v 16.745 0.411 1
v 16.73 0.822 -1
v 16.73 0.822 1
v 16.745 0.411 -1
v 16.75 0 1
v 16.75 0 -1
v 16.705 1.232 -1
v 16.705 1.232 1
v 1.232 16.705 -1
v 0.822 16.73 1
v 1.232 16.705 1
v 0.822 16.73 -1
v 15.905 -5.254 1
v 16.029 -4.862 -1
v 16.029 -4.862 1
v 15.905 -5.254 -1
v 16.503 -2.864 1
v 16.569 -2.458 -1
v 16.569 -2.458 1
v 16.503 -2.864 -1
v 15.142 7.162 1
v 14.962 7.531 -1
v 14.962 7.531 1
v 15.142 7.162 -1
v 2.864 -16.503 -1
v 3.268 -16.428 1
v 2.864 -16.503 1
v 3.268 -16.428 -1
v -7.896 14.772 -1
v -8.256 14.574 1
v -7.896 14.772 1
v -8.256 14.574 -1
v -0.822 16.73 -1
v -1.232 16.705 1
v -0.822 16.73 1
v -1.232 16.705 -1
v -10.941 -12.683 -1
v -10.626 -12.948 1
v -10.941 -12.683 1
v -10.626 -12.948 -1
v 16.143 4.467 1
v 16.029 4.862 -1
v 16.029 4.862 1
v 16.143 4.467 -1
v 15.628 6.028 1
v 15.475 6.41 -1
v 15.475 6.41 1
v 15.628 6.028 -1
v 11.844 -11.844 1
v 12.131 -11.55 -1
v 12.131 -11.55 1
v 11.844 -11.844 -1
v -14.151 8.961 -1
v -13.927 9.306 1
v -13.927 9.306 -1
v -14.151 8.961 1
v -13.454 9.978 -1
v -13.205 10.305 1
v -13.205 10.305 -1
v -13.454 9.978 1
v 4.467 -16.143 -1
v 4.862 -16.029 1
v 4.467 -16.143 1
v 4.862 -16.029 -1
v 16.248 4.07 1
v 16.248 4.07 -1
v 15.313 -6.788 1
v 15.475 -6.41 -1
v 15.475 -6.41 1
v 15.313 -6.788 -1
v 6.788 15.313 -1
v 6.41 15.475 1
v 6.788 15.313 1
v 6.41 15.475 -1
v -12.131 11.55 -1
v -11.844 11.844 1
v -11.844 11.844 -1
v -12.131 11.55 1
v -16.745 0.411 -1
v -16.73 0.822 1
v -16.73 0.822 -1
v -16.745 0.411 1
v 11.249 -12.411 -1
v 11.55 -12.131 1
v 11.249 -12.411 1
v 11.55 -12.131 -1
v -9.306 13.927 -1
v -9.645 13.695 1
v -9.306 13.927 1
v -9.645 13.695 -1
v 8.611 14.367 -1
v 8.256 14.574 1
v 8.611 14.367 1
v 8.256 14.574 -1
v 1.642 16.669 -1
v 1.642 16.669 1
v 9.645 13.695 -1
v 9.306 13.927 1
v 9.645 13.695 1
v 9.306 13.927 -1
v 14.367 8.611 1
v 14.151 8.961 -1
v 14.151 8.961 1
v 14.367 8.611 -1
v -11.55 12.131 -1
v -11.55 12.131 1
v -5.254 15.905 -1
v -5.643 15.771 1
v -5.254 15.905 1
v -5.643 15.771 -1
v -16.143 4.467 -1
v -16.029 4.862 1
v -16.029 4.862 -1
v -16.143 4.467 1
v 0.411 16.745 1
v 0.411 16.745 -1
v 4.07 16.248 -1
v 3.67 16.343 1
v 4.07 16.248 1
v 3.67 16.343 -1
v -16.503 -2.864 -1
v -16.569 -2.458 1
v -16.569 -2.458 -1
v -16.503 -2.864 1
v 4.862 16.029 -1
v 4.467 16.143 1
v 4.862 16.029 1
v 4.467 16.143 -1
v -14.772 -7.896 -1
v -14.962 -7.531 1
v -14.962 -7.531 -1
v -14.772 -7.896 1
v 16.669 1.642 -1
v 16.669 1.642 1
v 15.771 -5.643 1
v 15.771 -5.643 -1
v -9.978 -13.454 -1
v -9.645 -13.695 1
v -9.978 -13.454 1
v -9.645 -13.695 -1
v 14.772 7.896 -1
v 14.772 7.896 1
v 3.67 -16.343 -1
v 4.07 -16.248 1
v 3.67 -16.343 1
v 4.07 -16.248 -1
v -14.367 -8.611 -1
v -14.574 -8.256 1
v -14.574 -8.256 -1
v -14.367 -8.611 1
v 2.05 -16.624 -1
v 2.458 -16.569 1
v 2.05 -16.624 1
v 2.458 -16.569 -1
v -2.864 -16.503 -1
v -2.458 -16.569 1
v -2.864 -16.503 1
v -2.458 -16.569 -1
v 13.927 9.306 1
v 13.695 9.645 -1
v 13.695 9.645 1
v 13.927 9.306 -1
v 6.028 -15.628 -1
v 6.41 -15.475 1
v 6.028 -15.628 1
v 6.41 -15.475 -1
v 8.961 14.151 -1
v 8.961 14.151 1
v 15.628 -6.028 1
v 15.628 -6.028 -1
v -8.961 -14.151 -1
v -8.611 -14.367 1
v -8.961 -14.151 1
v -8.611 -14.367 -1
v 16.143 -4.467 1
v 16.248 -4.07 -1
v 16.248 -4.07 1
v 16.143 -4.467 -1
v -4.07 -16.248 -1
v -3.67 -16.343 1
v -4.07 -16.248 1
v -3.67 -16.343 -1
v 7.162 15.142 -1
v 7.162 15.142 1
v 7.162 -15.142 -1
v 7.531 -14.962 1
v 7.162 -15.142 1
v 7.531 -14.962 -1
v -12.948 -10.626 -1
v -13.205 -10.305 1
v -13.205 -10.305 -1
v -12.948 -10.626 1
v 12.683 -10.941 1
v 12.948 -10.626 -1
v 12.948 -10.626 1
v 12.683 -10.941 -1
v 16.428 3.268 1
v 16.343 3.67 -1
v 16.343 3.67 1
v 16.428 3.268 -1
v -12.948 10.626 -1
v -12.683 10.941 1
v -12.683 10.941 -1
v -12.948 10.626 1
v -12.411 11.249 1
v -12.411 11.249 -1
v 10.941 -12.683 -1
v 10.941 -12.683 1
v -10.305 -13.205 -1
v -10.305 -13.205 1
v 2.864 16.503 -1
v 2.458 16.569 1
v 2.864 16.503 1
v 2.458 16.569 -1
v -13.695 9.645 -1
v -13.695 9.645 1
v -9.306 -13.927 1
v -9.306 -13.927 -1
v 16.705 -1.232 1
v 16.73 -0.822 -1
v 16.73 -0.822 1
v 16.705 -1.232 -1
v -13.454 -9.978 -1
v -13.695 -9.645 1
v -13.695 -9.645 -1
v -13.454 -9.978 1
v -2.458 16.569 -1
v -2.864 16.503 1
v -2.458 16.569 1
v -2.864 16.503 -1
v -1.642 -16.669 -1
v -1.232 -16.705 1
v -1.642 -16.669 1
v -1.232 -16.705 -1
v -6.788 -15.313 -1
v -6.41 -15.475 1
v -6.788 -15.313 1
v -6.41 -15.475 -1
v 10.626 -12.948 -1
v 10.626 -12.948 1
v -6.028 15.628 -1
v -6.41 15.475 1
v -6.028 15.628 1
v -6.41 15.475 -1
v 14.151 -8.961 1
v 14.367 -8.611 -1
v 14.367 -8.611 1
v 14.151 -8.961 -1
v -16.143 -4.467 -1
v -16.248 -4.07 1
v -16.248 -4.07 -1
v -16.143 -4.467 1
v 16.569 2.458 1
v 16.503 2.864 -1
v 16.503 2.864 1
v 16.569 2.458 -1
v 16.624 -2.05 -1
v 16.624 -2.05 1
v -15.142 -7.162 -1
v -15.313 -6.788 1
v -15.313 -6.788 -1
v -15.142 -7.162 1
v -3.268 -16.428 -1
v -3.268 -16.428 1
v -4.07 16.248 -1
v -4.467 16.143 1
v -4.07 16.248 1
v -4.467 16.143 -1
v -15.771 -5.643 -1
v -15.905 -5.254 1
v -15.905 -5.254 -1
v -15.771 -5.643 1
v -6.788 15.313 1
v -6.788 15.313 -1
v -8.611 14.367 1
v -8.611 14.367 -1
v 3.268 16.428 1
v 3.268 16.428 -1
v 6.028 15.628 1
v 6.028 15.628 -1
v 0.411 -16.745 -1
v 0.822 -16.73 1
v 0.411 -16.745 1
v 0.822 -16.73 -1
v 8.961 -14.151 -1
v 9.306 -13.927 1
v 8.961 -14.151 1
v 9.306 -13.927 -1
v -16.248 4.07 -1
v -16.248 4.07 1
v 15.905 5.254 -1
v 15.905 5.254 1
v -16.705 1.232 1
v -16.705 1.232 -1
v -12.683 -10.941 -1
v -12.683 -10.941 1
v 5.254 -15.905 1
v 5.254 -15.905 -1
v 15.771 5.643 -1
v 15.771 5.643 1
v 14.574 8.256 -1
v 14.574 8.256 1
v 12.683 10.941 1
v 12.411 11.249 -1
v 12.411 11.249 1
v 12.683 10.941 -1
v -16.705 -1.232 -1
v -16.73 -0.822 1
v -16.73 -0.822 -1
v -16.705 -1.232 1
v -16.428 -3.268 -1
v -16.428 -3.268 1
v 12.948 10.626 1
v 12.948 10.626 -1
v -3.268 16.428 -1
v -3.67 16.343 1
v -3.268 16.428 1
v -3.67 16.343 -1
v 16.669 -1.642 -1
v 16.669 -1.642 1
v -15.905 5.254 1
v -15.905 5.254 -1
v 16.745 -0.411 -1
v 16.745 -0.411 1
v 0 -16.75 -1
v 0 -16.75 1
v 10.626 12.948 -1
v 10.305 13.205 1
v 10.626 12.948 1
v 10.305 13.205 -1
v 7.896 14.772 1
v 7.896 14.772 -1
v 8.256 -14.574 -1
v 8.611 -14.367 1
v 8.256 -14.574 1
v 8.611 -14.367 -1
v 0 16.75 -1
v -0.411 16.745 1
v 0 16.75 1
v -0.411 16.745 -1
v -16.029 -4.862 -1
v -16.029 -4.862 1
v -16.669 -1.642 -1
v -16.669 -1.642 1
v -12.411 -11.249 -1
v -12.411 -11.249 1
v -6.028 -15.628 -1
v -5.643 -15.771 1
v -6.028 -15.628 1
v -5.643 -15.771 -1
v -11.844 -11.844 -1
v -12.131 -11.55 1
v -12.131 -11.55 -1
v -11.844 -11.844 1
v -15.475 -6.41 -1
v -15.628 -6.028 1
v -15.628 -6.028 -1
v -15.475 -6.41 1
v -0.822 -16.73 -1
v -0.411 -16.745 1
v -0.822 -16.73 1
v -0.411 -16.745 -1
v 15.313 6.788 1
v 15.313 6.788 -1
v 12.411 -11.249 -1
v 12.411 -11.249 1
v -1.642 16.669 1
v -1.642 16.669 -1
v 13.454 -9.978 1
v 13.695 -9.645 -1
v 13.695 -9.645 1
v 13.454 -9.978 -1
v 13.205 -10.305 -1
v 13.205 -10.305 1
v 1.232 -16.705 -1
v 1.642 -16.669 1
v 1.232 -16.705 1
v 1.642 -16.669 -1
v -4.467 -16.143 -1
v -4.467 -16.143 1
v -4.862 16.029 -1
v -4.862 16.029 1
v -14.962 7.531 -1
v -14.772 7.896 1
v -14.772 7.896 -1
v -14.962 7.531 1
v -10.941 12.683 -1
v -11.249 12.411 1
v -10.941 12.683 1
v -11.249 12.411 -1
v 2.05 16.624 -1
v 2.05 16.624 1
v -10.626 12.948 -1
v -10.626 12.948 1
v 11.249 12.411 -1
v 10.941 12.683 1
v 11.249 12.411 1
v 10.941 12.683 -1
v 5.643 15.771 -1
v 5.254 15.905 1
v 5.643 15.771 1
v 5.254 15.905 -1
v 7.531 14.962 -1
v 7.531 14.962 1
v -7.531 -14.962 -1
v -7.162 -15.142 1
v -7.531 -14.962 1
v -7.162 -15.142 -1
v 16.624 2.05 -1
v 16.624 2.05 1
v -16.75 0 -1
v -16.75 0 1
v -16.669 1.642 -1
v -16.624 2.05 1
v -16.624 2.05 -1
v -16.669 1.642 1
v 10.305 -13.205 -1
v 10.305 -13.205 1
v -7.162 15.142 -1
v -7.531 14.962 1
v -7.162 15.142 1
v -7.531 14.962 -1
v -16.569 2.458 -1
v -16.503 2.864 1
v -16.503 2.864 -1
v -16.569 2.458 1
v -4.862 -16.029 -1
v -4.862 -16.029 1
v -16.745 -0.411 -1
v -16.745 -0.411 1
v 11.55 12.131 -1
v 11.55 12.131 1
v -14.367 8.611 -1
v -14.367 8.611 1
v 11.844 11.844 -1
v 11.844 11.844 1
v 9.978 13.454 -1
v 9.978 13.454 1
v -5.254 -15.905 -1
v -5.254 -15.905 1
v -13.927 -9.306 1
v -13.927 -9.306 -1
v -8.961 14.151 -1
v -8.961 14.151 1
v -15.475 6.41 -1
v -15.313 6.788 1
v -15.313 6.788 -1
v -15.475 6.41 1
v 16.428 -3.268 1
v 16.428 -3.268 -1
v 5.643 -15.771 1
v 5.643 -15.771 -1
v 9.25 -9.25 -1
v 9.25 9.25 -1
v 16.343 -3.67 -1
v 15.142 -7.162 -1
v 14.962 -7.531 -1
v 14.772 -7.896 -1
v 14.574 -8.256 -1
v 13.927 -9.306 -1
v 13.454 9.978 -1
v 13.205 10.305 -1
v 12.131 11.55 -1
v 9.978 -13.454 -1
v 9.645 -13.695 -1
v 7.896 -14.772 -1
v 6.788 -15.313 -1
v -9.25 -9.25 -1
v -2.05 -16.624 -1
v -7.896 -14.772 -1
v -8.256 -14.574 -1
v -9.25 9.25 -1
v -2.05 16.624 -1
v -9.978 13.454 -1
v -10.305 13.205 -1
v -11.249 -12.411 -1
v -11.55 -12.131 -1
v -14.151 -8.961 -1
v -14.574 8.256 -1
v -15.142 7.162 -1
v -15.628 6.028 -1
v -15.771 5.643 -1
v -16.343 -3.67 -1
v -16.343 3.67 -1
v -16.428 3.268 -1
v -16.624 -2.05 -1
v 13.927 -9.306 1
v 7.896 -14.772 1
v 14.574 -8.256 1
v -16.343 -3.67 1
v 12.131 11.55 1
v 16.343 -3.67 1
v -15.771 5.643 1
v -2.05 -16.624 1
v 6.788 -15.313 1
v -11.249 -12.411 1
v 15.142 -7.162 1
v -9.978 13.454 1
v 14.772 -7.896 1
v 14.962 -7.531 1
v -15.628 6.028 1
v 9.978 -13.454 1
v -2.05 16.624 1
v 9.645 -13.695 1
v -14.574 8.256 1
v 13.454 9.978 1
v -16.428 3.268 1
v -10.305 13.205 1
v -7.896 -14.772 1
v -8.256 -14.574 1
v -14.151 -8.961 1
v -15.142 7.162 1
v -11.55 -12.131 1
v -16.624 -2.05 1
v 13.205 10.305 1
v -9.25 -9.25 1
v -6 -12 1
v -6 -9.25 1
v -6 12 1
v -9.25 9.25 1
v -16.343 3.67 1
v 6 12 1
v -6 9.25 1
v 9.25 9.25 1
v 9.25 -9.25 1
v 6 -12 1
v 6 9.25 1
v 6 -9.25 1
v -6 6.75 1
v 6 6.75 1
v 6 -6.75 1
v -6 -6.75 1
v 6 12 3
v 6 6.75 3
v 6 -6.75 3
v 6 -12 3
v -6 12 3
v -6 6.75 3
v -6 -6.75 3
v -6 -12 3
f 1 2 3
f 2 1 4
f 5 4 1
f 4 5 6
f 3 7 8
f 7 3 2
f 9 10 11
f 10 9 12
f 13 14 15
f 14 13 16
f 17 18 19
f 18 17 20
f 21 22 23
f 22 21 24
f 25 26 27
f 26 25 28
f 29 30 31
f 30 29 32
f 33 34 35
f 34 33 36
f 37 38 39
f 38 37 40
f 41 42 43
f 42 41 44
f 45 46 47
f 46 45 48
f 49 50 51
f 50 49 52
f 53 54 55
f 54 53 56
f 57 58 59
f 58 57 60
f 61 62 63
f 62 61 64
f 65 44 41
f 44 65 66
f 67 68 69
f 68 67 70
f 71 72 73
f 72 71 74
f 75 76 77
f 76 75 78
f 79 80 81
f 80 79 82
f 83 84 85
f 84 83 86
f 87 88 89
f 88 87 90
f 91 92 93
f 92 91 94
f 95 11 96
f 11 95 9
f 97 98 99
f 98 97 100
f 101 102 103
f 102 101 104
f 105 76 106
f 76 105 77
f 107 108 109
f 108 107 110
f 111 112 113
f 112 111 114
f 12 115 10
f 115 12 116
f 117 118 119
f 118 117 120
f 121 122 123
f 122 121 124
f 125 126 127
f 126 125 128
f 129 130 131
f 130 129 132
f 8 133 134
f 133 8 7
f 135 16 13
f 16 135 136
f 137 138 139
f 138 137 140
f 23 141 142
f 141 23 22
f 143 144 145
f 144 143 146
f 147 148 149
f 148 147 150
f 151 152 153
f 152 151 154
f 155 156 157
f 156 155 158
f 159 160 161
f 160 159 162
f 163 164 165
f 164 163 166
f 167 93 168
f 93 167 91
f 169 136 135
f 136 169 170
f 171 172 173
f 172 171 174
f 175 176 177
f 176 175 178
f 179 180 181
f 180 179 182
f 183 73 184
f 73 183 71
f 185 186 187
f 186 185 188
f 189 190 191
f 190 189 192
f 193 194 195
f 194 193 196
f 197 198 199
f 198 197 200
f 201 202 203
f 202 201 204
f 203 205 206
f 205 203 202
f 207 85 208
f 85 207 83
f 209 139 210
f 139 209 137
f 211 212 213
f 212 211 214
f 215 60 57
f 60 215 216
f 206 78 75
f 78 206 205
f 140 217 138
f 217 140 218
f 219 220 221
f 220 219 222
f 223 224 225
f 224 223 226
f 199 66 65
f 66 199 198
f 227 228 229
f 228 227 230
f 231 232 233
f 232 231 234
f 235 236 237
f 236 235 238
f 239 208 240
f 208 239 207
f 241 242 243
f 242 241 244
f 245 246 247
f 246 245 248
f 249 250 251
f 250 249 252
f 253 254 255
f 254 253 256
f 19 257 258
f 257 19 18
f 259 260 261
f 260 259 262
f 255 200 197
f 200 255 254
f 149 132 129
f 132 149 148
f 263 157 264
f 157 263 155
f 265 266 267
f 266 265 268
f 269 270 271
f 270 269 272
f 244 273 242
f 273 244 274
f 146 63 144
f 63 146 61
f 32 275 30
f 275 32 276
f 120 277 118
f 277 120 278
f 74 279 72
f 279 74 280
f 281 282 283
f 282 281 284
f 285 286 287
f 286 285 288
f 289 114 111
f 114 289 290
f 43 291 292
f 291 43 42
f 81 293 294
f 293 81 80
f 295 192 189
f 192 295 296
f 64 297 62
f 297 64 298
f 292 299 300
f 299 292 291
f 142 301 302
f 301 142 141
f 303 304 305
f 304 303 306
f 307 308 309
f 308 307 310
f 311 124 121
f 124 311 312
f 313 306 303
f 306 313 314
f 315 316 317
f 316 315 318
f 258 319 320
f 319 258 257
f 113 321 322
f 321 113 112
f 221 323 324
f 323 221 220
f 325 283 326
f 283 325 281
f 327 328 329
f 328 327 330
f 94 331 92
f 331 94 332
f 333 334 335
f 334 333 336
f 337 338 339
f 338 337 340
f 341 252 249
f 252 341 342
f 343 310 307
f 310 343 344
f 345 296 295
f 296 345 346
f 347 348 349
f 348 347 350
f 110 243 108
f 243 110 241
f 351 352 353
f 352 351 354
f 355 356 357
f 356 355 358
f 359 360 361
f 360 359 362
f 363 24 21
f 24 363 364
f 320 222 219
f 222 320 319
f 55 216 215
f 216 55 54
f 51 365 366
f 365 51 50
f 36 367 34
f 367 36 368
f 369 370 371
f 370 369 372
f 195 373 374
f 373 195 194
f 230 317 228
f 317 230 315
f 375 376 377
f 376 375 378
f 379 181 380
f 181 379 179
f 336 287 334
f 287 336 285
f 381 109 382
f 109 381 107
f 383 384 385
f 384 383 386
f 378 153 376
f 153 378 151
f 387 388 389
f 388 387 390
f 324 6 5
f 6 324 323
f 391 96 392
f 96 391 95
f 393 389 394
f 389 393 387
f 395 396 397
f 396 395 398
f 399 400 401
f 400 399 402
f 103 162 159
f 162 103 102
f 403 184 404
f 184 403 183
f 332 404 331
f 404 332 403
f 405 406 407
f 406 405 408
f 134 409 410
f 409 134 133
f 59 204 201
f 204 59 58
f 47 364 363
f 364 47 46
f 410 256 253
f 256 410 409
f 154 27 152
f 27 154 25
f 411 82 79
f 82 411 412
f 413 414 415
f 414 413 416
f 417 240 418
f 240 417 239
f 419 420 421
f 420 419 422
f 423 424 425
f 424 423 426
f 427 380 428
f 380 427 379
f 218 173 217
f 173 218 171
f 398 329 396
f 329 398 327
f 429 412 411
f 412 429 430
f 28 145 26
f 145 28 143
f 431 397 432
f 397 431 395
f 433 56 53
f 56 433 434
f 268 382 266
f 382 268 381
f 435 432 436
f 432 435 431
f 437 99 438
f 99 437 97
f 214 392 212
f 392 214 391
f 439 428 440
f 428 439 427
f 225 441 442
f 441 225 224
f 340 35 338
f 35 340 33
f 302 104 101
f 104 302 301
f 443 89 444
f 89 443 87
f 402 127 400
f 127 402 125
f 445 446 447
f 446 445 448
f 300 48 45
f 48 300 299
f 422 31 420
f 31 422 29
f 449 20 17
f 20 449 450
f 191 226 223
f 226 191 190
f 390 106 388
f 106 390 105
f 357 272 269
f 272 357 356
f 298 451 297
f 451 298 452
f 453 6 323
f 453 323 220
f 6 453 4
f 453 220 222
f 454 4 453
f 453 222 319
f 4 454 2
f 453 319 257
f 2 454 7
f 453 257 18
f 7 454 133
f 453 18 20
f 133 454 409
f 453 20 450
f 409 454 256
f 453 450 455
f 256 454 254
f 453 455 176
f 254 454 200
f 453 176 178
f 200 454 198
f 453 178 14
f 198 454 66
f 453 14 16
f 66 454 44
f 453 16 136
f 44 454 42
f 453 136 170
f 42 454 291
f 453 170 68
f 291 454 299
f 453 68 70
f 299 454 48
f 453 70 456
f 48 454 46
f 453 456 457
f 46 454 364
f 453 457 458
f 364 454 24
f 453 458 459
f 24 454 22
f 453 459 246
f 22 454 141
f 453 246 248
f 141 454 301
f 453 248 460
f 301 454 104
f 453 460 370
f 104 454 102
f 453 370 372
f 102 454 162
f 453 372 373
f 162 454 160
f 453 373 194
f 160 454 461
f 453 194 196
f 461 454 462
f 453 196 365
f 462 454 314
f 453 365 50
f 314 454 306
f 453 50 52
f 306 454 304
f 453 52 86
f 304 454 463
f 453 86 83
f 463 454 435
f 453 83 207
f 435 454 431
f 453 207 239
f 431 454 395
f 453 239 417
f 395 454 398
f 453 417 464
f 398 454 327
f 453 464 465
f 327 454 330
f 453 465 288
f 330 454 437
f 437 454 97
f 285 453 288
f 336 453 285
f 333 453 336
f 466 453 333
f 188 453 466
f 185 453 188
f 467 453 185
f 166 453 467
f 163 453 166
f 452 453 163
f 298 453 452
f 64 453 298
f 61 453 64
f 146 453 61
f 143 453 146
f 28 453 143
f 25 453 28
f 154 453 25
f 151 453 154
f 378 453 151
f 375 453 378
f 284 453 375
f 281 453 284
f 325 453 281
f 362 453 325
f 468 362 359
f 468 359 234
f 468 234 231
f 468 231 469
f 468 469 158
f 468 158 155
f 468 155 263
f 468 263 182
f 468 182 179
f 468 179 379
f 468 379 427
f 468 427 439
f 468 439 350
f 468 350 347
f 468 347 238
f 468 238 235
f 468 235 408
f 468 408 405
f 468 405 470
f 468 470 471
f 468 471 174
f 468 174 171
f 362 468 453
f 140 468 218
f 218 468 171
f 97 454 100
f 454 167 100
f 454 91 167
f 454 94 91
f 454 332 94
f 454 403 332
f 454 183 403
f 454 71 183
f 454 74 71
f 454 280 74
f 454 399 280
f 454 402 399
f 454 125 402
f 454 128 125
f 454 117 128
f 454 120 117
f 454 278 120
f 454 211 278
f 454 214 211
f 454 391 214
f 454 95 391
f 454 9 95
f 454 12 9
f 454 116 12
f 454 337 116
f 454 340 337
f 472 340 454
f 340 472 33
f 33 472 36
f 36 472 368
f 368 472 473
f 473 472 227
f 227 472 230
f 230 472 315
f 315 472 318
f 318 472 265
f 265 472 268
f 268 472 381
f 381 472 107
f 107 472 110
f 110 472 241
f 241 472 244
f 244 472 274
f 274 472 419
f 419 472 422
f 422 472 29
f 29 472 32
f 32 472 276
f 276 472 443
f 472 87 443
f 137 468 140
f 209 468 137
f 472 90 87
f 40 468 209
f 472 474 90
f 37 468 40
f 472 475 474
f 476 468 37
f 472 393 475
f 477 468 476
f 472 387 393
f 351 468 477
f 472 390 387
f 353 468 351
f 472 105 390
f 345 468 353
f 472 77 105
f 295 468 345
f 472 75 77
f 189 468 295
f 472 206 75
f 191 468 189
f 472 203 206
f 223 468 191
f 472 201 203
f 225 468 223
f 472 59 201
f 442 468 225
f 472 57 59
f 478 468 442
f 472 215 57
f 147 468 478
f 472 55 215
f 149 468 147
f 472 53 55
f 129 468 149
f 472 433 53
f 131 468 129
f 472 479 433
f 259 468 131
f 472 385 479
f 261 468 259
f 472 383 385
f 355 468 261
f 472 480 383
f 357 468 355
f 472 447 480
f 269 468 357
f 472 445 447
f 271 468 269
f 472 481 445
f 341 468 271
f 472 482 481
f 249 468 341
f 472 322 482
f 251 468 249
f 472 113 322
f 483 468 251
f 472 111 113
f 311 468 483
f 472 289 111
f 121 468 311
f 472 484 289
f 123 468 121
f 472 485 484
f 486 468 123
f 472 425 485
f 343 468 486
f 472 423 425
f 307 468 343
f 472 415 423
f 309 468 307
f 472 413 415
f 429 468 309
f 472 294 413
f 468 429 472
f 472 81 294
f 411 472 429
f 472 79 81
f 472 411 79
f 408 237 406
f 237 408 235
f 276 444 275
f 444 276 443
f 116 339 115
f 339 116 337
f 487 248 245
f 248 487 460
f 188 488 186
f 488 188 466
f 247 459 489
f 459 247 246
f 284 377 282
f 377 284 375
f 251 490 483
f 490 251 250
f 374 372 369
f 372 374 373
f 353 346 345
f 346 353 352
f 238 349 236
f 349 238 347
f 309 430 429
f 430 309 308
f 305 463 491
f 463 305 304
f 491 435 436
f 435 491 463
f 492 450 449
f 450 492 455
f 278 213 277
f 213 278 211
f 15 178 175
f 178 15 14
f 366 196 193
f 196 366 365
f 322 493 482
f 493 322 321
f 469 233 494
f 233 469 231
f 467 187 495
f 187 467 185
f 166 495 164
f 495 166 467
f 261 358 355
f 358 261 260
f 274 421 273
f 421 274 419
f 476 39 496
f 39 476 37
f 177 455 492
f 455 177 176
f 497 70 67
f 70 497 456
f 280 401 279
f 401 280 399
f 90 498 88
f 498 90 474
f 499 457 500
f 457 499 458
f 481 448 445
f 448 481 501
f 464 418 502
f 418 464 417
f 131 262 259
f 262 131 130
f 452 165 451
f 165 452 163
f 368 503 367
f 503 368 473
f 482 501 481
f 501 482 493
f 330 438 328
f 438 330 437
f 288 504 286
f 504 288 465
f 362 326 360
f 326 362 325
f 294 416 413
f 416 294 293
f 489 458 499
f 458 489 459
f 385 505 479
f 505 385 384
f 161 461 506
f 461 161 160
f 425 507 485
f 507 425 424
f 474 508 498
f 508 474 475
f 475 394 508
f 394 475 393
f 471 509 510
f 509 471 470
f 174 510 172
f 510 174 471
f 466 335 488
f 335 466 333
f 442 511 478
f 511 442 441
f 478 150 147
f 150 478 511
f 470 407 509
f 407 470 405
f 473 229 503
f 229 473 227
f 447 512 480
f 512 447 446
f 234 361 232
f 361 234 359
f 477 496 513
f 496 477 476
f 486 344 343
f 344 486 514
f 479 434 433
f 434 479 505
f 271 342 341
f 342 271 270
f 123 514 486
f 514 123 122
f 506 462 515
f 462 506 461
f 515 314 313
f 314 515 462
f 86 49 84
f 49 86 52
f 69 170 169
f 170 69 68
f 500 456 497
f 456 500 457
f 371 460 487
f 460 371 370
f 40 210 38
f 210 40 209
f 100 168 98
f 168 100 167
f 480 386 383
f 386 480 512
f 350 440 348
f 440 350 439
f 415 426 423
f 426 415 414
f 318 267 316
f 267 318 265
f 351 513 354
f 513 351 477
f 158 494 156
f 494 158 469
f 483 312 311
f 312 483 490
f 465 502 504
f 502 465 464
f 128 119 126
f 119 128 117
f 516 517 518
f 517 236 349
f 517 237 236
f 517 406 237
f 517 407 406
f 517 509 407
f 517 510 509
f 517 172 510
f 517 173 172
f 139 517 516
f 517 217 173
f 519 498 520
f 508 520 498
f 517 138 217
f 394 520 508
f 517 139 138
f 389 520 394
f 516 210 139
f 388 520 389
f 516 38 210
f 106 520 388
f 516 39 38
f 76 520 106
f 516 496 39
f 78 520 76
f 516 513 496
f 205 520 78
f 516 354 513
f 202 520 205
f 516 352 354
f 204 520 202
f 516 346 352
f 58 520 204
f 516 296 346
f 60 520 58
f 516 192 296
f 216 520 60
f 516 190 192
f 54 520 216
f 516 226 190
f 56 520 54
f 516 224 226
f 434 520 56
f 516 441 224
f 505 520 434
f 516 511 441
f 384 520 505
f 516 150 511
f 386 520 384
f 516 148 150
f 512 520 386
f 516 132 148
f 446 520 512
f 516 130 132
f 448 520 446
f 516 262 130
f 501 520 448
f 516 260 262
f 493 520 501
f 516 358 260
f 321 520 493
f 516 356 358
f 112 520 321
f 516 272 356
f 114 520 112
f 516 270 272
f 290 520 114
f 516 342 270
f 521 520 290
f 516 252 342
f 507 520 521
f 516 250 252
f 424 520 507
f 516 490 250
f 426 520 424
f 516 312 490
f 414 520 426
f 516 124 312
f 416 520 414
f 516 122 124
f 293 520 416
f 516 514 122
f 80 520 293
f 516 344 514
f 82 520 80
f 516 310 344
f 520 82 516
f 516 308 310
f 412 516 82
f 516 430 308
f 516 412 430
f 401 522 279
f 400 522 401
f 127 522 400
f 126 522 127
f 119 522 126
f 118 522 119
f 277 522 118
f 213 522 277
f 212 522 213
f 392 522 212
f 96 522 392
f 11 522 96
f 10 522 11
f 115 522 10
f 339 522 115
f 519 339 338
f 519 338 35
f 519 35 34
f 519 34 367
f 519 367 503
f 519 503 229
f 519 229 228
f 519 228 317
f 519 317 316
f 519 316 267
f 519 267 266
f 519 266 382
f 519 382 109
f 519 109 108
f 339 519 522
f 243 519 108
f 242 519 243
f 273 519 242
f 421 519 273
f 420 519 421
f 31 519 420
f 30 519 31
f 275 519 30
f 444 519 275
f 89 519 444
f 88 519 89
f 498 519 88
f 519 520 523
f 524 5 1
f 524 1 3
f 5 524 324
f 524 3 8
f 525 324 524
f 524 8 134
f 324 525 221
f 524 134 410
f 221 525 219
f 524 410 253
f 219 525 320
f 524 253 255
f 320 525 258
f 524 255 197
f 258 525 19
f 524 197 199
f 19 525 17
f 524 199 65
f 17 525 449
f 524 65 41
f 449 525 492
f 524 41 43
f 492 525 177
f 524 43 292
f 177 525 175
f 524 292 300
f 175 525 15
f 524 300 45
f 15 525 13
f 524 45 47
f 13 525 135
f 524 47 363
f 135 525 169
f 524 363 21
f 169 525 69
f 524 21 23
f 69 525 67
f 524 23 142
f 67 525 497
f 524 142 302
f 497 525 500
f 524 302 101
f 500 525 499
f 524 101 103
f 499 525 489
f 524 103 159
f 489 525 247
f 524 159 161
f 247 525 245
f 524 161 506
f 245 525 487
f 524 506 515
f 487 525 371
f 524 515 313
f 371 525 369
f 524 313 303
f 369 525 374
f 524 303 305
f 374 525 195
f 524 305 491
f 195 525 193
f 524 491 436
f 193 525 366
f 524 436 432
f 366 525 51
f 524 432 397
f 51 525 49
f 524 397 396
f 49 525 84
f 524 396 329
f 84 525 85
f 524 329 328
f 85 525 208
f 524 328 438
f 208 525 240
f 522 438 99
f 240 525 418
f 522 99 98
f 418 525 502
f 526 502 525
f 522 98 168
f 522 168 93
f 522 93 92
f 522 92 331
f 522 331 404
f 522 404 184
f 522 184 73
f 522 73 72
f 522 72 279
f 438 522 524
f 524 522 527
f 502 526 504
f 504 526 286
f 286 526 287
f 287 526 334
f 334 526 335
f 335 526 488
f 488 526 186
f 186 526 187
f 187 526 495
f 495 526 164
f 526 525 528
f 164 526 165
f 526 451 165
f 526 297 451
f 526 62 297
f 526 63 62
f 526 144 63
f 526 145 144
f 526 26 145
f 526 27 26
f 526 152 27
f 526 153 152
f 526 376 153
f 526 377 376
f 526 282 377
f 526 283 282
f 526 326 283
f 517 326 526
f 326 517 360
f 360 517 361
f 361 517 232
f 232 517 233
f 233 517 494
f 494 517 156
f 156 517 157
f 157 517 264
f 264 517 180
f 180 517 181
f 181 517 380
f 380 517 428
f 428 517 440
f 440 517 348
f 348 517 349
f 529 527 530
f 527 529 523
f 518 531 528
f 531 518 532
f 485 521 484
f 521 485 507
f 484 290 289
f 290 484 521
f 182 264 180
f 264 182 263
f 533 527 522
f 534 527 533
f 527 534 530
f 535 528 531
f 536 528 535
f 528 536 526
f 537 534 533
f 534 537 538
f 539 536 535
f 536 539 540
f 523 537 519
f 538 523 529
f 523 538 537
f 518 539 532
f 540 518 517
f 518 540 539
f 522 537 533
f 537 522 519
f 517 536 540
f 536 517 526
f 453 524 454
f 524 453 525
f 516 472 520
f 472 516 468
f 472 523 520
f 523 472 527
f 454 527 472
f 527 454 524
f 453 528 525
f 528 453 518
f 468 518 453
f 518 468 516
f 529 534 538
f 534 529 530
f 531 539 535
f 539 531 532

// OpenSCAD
$fn = $preview ? 64 : 256;

square_size = 18.5;

height = 2;
width = square_size + 15;
lenght = 28;

trail_width = 12;
trail_height = 2;
trail_length = lenght - 4;

difference() {
	union() {
		cylinder(height, width/2, width/2, center=true);
		translate([0, 0, height/2+trail_height/2]) cube([trail_width, trail_length, trail_height], center=true);
	}
	cube([square_size, square_size, height], center=true);
	translate([0, 0, height/2+trail_height/2]) cube([square_size, square_size -5 , trail_height], center=true);
}
